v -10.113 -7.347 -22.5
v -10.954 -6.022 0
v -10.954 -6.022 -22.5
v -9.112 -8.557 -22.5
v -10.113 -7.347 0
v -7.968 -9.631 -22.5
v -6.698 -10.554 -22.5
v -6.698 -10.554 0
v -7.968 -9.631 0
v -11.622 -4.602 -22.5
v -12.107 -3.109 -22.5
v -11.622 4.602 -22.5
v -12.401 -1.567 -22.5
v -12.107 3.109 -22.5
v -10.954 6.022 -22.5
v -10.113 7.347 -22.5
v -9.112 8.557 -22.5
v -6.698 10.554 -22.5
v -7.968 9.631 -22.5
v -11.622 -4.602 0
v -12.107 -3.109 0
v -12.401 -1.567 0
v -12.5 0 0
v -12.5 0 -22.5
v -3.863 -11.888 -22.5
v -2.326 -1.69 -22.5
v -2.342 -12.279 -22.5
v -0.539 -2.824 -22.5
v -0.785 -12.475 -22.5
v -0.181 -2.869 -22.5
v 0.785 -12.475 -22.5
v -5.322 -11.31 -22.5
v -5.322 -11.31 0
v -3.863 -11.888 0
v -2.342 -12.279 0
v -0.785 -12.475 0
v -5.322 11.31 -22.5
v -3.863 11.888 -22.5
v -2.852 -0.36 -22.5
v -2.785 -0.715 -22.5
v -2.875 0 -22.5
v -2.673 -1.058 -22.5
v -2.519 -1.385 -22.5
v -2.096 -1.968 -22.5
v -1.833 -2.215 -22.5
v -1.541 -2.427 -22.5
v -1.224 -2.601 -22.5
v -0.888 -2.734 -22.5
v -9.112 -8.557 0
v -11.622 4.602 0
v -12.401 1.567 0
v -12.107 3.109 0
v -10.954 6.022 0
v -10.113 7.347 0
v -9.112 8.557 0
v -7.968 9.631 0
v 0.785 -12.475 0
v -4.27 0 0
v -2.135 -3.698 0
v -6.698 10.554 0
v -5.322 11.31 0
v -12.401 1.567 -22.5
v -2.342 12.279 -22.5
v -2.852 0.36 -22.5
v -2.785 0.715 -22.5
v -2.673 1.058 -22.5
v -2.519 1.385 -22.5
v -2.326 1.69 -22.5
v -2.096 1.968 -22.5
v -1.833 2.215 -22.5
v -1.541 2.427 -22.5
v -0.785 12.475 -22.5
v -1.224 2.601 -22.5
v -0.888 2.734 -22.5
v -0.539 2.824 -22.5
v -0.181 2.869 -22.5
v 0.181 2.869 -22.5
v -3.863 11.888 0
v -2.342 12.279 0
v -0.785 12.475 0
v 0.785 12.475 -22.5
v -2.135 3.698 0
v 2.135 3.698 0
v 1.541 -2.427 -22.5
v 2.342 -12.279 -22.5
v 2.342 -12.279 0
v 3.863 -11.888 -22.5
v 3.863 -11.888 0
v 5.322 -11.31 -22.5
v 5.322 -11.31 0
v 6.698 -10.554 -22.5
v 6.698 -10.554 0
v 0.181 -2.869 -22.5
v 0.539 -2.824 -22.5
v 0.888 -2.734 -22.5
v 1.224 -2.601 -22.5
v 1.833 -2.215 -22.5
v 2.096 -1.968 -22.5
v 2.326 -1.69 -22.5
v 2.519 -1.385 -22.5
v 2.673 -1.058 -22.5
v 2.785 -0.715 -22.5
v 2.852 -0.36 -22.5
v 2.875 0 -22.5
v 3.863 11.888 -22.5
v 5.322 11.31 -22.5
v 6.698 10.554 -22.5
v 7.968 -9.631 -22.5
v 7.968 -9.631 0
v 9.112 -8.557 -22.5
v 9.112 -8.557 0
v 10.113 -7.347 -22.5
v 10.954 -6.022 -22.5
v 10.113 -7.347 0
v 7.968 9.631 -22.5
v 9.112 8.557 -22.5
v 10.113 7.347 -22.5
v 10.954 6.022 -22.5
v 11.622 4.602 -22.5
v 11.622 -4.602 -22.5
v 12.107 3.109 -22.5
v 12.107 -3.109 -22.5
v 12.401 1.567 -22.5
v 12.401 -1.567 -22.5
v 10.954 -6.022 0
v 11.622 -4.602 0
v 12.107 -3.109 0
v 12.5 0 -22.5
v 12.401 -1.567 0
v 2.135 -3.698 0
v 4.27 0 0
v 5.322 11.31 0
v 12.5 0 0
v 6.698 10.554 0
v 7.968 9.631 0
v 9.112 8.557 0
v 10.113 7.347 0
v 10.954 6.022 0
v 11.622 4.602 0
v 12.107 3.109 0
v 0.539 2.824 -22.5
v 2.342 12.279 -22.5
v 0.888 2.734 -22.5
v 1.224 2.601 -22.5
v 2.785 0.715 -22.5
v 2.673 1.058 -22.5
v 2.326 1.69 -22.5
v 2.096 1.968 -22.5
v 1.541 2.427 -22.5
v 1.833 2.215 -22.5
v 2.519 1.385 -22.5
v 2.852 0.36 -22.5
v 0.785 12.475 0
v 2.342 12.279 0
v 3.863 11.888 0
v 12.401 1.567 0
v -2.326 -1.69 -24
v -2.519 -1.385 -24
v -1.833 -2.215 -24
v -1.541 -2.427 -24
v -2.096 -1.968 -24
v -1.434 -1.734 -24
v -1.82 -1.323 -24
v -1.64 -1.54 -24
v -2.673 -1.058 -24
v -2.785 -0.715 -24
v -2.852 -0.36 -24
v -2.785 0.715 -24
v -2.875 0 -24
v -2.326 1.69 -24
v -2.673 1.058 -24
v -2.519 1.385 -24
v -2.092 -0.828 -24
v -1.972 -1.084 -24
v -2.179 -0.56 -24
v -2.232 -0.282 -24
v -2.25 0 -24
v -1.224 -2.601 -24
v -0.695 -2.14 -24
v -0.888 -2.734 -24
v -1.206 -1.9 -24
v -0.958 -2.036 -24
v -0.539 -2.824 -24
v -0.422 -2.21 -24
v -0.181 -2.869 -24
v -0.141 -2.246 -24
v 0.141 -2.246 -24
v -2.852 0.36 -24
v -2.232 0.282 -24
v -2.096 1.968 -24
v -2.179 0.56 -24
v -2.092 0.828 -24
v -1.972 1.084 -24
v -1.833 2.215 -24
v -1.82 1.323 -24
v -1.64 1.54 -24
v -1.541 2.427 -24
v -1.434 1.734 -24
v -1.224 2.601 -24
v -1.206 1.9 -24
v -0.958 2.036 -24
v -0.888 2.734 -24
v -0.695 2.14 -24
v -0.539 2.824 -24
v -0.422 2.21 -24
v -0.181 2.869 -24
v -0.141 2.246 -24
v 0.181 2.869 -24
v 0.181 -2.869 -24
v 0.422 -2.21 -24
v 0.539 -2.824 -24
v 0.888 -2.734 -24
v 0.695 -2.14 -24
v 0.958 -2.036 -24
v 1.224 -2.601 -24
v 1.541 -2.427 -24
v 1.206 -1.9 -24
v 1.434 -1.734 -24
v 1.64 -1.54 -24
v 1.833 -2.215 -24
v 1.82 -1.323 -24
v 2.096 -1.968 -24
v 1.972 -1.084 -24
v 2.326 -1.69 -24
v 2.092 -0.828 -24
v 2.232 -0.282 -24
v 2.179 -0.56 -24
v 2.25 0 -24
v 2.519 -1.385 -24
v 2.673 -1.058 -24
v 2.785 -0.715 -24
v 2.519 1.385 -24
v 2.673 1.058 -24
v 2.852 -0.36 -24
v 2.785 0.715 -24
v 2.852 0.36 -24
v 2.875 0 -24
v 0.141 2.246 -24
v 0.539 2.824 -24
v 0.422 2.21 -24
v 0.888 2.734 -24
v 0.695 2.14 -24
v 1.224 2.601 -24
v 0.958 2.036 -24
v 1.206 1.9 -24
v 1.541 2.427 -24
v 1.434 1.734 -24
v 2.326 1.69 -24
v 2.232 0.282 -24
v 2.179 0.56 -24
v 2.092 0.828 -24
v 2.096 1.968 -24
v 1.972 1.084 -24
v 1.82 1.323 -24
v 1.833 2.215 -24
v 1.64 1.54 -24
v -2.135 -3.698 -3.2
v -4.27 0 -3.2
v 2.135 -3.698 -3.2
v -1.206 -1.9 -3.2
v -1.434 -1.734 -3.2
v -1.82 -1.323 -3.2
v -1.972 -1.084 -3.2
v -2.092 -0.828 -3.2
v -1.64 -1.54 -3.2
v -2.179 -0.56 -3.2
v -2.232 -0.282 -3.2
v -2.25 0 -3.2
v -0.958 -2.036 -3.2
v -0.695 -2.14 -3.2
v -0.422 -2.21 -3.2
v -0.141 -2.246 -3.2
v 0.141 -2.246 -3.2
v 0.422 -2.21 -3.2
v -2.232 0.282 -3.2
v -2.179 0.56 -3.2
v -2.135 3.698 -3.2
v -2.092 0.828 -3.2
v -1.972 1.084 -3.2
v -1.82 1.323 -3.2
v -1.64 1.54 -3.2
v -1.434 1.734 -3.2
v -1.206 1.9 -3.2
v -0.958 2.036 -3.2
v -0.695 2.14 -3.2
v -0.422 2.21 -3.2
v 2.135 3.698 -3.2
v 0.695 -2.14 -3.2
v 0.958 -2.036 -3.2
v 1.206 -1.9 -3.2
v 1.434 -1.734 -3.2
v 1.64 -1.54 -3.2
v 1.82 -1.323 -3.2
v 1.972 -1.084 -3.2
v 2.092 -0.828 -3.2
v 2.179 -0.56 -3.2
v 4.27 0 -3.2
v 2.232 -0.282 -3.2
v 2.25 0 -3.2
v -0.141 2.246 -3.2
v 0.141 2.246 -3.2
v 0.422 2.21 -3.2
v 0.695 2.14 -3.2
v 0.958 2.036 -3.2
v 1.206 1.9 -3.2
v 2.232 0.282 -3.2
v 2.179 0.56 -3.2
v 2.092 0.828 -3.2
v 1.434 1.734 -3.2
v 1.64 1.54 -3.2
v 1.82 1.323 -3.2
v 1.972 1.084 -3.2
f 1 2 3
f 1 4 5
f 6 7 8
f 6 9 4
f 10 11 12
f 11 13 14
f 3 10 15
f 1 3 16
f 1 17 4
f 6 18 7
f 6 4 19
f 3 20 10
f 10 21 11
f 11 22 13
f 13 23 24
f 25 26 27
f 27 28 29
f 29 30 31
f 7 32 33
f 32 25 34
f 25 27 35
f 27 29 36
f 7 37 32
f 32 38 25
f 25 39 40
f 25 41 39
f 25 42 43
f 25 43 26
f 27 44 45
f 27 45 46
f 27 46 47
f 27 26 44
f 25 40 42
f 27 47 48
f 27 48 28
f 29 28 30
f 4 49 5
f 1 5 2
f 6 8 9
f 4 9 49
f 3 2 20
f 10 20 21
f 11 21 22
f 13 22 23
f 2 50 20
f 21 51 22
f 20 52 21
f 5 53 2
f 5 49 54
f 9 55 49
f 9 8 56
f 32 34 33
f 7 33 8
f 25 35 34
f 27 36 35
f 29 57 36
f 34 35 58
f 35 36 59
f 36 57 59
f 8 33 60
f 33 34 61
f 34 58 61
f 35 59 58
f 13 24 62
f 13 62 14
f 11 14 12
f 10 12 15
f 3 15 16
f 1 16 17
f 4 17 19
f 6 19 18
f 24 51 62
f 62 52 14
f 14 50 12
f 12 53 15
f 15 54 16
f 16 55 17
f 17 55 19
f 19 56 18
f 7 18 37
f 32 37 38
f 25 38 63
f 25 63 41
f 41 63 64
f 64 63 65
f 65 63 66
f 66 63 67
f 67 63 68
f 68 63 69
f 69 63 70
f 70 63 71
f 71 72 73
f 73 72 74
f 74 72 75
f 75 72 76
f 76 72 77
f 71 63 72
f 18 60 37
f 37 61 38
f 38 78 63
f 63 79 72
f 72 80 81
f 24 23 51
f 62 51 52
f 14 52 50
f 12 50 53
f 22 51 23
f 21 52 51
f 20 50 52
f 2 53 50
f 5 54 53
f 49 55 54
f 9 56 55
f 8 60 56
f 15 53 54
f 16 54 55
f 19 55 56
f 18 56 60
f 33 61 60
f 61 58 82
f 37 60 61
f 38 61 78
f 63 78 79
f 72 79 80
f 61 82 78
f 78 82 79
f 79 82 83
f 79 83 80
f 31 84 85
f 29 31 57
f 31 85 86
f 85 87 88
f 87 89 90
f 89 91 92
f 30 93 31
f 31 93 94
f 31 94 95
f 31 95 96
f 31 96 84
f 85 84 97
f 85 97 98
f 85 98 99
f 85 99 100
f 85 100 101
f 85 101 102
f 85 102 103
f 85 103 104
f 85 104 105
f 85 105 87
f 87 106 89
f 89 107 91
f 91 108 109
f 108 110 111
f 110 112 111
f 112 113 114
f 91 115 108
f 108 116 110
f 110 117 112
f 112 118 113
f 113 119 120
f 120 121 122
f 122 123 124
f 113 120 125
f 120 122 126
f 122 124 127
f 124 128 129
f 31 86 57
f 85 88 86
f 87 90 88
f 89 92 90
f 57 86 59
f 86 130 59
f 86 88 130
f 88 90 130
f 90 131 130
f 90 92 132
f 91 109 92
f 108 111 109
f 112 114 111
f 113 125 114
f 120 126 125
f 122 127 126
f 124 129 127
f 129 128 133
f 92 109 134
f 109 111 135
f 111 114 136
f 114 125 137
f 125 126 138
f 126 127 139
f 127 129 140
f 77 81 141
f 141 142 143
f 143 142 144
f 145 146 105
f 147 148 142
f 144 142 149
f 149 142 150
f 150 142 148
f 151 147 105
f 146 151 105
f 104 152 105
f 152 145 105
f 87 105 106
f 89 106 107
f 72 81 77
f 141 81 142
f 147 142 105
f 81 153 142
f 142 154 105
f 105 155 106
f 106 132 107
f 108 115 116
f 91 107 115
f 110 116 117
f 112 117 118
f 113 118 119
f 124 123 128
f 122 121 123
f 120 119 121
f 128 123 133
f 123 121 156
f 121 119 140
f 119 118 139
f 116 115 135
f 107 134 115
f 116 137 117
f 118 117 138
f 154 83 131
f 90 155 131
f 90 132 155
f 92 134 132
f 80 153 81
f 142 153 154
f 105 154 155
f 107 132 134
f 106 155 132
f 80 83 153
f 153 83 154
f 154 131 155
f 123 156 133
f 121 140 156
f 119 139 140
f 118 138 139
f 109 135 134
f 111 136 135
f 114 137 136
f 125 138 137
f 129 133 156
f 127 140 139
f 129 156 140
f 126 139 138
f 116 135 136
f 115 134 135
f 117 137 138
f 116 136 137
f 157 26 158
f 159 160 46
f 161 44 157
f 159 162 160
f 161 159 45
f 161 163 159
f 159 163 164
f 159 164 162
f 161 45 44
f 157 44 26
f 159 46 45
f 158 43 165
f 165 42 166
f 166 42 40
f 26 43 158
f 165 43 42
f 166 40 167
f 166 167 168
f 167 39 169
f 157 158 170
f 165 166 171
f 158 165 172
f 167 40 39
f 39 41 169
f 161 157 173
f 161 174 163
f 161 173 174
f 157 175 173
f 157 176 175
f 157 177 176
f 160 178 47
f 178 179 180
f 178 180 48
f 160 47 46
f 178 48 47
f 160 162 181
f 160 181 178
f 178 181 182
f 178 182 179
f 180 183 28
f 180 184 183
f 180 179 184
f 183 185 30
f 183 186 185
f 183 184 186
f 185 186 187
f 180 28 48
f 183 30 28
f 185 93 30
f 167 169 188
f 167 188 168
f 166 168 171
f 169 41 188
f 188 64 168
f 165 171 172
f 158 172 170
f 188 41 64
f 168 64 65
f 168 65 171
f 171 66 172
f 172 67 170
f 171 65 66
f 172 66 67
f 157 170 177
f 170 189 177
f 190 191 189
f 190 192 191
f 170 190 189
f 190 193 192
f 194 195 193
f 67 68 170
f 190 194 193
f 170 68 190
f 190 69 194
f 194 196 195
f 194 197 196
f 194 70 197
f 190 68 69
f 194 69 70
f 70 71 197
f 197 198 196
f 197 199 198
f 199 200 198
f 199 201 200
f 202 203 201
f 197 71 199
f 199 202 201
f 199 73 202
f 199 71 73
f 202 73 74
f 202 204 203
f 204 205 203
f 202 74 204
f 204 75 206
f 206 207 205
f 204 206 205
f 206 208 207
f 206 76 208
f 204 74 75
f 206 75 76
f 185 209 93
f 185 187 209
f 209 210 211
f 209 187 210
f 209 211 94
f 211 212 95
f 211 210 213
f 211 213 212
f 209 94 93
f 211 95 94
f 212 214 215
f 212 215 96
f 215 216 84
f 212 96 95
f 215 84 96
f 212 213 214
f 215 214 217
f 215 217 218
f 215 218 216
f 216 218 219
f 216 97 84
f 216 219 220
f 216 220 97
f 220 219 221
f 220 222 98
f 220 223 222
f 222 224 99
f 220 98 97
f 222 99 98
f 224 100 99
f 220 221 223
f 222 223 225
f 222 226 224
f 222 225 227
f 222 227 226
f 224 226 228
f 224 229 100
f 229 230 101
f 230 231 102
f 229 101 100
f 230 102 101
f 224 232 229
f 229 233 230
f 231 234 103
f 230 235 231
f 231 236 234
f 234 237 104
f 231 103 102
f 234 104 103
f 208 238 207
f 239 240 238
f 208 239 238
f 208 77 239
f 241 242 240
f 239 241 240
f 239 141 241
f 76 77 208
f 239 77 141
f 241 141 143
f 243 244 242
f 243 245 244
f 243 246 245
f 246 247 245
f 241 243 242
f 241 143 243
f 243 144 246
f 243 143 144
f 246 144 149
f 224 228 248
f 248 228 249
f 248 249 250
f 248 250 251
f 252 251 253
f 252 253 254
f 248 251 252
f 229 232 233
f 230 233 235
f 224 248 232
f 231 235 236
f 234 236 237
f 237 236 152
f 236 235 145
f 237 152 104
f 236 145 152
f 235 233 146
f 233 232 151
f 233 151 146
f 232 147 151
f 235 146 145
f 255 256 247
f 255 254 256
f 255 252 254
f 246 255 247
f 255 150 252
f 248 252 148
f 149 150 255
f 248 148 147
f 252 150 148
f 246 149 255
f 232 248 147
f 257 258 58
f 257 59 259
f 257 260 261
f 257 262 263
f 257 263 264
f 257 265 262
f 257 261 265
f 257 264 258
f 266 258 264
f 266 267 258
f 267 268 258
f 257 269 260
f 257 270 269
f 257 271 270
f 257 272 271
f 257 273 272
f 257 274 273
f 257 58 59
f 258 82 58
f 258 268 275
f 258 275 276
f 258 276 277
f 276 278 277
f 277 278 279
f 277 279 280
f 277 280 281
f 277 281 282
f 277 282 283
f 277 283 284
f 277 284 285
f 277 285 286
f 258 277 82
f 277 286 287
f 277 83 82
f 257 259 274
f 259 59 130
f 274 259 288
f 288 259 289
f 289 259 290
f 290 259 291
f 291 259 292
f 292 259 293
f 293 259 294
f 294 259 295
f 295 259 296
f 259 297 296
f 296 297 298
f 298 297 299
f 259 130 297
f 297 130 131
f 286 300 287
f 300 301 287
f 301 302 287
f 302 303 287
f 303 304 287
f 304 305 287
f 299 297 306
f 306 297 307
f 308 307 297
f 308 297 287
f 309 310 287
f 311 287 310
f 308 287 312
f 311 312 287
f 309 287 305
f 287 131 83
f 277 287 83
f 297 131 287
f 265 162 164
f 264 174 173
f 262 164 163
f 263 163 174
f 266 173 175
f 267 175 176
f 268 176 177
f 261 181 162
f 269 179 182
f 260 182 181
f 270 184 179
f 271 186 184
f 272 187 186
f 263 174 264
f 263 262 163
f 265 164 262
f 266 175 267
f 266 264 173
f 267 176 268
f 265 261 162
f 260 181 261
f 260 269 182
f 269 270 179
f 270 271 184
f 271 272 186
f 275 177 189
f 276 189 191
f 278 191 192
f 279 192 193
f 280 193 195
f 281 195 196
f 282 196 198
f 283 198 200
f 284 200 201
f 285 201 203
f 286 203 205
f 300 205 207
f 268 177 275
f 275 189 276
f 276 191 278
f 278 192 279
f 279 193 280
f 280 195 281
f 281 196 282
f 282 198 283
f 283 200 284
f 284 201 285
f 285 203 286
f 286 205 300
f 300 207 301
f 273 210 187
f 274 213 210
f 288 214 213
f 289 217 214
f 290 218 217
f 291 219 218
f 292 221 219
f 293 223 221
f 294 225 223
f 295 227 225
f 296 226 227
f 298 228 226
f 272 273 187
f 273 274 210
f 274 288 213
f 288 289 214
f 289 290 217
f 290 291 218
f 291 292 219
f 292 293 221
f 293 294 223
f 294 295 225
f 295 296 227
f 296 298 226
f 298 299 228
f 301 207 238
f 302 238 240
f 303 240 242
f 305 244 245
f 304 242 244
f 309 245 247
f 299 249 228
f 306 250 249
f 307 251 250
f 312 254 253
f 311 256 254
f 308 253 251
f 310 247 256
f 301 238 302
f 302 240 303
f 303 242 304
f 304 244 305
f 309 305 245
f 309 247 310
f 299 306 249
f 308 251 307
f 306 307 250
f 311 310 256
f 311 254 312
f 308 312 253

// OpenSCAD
$fn = 50;


difference() {
	union() {
		translate(v = [0, 0, -22.5000000000]) {
			cylinder(h = 22.5000000000, r = 12.5000000000);
		}
		#translate(v = [0, 0, -24.0000000000]) {
			cylinder(h = 24, r = 2.8750000000);
		}
	}
	union() {
		translate(v = [0, 0, 0]) {
			rotate(a = [0, 0, 0]) {
				difference() {
					union() {
						translate(v = [0, 0, -3.2000000000]) {
							linear_extrude(height = 3.2000000000) {
								polygon(points = [[4.2698000000, 0.0000000000], [2.1349000000, 3.6977552691], [-2.1349000000, 3.6977552691], [-4.2698000000, 0.0000000000], [-2.1349000000, -3.6977552691], [2.1349000000, -3.6977552691]]);
							}
						}
					}
					union();
				}
			}
		}
		#translate(v = [0, 0, -100.0000000000]) {
			cylinder(h = 200, r = 2.2500000000);
		}
	}
}
